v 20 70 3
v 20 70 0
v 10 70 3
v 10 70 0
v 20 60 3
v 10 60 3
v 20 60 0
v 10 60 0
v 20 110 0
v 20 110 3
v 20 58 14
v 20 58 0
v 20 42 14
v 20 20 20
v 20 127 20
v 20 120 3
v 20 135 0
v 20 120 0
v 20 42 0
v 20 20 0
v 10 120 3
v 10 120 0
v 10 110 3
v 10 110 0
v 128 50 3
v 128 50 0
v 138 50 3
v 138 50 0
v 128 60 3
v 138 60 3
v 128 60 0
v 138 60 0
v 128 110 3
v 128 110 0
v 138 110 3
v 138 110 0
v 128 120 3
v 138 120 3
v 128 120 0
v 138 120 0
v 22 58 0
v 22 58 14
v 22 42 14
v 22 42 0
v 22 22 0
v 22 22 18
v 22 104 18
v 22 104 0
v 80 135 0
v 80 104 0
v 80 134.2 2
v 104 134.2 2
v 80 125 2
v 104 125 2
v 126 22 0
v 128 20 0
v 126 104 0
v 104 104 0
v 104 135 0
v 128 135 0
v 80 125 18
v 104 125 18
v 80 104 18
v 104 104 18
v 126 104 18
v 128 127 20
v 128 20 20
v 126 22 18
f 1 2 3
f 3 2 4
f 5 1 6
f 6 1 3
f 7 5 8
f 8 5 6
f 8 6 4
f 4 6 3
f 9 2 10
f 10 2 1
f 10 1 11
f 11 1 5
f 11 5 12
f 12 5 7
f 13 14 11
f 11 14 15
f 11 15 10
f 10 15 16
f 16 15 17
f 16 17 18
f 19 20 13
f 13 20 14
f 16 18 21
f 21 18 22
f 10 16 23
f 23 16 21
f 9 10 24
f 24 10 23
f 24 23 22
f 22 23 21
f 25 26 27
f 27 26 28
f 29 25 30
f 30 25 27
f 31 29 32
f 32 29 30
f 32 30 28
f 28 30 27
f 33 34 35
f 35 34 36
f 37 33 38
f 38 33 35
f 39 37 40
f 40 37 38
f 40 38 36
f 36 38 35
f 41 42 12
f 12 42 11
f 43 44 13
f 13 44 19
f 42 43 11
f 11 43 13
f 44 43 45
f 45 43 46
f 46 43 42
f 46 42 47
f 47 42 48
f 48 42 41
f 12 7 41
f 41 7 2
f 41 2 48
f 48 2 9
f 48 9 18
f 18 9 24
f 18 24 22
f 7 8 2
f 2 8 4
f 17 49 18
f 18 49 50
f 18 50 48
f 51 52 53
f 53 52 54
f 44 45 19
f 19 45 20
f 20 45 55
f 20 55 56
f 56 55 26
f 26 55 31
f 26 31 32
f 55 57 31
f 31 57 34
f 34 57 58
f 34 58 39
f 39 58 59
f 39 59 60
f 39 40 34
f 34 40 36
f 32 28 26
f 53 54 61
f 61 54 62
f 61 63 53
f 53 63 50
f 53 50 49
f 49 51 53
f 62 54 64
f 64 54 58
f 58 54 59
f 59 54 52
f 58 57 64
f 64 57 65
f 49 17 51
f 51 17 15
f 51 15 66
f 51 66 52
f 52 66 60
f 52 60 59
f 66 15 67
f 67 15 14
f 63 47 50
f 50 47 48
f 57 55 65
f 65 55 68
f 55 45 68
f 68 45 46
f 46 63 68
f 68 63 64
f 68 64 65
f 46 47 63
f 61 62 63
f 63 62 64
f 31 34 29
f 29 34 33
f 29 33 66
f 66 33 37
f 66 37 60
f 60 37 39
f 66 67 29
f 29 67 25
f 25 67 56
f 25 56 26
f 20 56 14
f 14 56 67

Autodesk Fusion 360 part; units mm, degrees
sketch "Sketch1" plane through (0, 0, 0) normal (0, 0, 1) x (1, 0, 0) in component "Cover"
  line L0 (20, 20) -> (128, 20)
  line L1 (128, 20) -> (128, 135)
  line L2 (128, 135) -> (20, 135)
  line L3 (20, 135) -> (20, 20)
  dimension "d1" = 20
  dimension "d2" = 20
  dimension "d3" = 115
  dimension "d4" = 108
extrude "Extrude1" add sketch "Sketch1" along normal blind 20 in component "Cover"
sketch "Sketch2" plane through (0, 0, 0) normal (0, 0, -1) x (-1, 0, 0) in component "Cover"
  line L0 (-20, 20) -> (-20, 135)
  line L1 (-20, 135) -> (-128, 135)
  line L2 (-128, 135) -> (-128, 20)
  line L3 (-128, 20) -> (-20, 20)
  line L4 (-126, 104) -> (-22, 104)
  line L5 (-22, 104) -> (-22, 22)
  line L6 (-22, 22) -> (-126, 22)
  line L7 (-126, 22) -> (-126, 104)
  dimension "d8" = 2
  dimension "d10" = 2
  dimension "d28" = 82
  dimension "d29" = 104
extrude "Extrude2" cut sketch "Sketch2" against normal blind 18 contours L4 L5 L6 L7 in component "Cover"
sketch "Sketch3" plane through (20, 0, 0) normal (-1, 0, 0) x (0, 0, 1) in component "Cover"
  line L0 (0, 135) -> (0, 20)
  line L1 (0, 20) -> (20, 20)
  line L2 (20, 20) -> (20, 135)
  line L3 (20, 135) -> (0, 135)
  line L4 (0, 58) -> (14, 58)
  line L5 (14, 58) -> (14, 42)
  line L6 (14, 42) -> (0, 42)
  line L7 (20, 135) -> (0, 135)
  line L8 (0, 135) -> (20, 127)
  line L9 (0, 120) -> (3, 120)
  line L10 (3, 120) -> (3, 110)
  line L11 (3, 110) -> (0, 110)
  line L12 (0, 110) -> (0, 120)
  line L13 (0, 70) -> (3, 70)
  line L14 (3, 70) -> (3, 60)
  line L15 (3, 60) -> (0, 60)
  line L16 (0, 60) -> (0, 70)
  dimension "d13" = 14
  dimension "d14" = 16
  dimension "d16" = 22
  dimension "d30" = 8
  dimension "d51" = 3
  dimension "d52" = 10
  dimension "d53" = 3
  dimension "d54" = 10
  dimension "d55" = 90
  dimension "d56" = 40
sketch "Sketch1 (2)" plane through (0, 20, 0) normal (0, -1, 0) x (1, 0, 0)
  line L0 (20, 0) -> (128, 0)
  line L1 (128, 0) -> (128, 20)
  line L2 (128, 20) -> (20, 20)
  line L3 (20, 20) -> (20, 0)
  line L4 (95, 5) -> (107, 5)
  line L5 (107, 5) -> (107, 10)
  line L6 (107, 10) -> (95, 10)
  line L7 (95, 10) -> (95, 5)
  point P0 (20, 0)
  dimension "d22" = 5
  dimension "d23" = 12
  dimension "d24" = 75
  dimension "d25" = 5
extrude "Extrude6" cut sketch "Sketch3" against normal up to surface (108 mm away) contours L2 L3 L7 L8 in component "Cover"
sketch "Sketch2 (2)" plane through (0, 0, 0) normal (0, 0, -1) x (-1, 0, 0)
  line L0 (-22, 104) -> (-22, 22)
  line L1 (-22, 22) -> (-126, 22)
  line L2 (-126, 22) -> (-126, 104)
  line L3 (-126, 104) -> (-22, 104)
  line L4 (-20, 20) -> (-20, 135)
  line L5 (-20, 135) -> (-128, 135)
  line L6 (-128, 135) -> (-128, 20)
  line L7 (-128, 20) -> (-20, 20)
  line L8 (-104, 104) -> (-80, 104)
  line L9 (-80, 104) -> (-80, 125)
  line L10 (-80, 125) -> (-104, 125)
  line L11 (-104, 125) -> (-104, 104)
  line L12 (-104, 125) -> (-80, 125)
  line L13 (-80, 125) -> (-80, 135)
  line L14 (-80, 135) -> (-104, 135)
  line L15 (-104, 135) -> (-104, 125)
  dimension "d33" = 21
  dimension "d34" = 24
  dimension "d35" = 22
  dimension "d36" = 24
extrude "Extrude7" cut sketch "Sketch2 (2)" against normal up to surface (18 mm away) contours L3 L8 L9 L10 L11 L12 in component "Cover"
extrude "Extrude8" cut sketch "Sketch2 (2)" against normal blind 2 contours L5 L10 L12 L13 L14 L15 in component "Cover"
extrude "Extrude9" cut sketch "Sketch3" against normal up to surface (2 mm away) contours L0 L4 L5 L6 in component "Cover"
sketch "Sketch3 (2)" plane through (128, 0, 0) normal (1, 0, 0) x (0, 0, -1)
  line L0 (0, 135) -> (-20, 127)
  line L1 (-20, 127) -> (-20, 20)
  line L2 (-20, 20) -> (0, 20)
  line L3 (0, 20) -> (0, 135)
  line L4 (0, 120) -> (-3, 120)
  line L5 (-3, 120) -> (-3, 110)
  line L6 (-3, 110) -> (0, 110)
  line L7 (0, 110) -> (0, 120)
  line L8 (0, 60) -> (-3, 60)
  line L9 (-3, 60) -> (-3, 50)
  line L10 (-3, 50) -> (0, 50)
  line L11 (0, 50) -> (0, 60)
  dimension "d43" = 3
  dimension "d44" = 10
  dimension "d45" = 10
  dimension "d46" = 3
  dimension "d47" = 30
  dimension "d48" = 50
extrude "Extrude10" add sketch "Sketch3 (2)" along normal blind 10 contours L3 L4 L5 L6 L7 | L3 L8 L9 L10 L11 in component "Cover"
extrude "Extrude11" add sketch "Sketch3" along normal blind 10 contours L0 L9 L10 L11 L12 | L0 L13 L14 L15 L16 in component "Cover"
component "Cover" placed x (1, 0, 0) y (0, 1, 0) z (0, 0, 1) at (0, 0, 0)
